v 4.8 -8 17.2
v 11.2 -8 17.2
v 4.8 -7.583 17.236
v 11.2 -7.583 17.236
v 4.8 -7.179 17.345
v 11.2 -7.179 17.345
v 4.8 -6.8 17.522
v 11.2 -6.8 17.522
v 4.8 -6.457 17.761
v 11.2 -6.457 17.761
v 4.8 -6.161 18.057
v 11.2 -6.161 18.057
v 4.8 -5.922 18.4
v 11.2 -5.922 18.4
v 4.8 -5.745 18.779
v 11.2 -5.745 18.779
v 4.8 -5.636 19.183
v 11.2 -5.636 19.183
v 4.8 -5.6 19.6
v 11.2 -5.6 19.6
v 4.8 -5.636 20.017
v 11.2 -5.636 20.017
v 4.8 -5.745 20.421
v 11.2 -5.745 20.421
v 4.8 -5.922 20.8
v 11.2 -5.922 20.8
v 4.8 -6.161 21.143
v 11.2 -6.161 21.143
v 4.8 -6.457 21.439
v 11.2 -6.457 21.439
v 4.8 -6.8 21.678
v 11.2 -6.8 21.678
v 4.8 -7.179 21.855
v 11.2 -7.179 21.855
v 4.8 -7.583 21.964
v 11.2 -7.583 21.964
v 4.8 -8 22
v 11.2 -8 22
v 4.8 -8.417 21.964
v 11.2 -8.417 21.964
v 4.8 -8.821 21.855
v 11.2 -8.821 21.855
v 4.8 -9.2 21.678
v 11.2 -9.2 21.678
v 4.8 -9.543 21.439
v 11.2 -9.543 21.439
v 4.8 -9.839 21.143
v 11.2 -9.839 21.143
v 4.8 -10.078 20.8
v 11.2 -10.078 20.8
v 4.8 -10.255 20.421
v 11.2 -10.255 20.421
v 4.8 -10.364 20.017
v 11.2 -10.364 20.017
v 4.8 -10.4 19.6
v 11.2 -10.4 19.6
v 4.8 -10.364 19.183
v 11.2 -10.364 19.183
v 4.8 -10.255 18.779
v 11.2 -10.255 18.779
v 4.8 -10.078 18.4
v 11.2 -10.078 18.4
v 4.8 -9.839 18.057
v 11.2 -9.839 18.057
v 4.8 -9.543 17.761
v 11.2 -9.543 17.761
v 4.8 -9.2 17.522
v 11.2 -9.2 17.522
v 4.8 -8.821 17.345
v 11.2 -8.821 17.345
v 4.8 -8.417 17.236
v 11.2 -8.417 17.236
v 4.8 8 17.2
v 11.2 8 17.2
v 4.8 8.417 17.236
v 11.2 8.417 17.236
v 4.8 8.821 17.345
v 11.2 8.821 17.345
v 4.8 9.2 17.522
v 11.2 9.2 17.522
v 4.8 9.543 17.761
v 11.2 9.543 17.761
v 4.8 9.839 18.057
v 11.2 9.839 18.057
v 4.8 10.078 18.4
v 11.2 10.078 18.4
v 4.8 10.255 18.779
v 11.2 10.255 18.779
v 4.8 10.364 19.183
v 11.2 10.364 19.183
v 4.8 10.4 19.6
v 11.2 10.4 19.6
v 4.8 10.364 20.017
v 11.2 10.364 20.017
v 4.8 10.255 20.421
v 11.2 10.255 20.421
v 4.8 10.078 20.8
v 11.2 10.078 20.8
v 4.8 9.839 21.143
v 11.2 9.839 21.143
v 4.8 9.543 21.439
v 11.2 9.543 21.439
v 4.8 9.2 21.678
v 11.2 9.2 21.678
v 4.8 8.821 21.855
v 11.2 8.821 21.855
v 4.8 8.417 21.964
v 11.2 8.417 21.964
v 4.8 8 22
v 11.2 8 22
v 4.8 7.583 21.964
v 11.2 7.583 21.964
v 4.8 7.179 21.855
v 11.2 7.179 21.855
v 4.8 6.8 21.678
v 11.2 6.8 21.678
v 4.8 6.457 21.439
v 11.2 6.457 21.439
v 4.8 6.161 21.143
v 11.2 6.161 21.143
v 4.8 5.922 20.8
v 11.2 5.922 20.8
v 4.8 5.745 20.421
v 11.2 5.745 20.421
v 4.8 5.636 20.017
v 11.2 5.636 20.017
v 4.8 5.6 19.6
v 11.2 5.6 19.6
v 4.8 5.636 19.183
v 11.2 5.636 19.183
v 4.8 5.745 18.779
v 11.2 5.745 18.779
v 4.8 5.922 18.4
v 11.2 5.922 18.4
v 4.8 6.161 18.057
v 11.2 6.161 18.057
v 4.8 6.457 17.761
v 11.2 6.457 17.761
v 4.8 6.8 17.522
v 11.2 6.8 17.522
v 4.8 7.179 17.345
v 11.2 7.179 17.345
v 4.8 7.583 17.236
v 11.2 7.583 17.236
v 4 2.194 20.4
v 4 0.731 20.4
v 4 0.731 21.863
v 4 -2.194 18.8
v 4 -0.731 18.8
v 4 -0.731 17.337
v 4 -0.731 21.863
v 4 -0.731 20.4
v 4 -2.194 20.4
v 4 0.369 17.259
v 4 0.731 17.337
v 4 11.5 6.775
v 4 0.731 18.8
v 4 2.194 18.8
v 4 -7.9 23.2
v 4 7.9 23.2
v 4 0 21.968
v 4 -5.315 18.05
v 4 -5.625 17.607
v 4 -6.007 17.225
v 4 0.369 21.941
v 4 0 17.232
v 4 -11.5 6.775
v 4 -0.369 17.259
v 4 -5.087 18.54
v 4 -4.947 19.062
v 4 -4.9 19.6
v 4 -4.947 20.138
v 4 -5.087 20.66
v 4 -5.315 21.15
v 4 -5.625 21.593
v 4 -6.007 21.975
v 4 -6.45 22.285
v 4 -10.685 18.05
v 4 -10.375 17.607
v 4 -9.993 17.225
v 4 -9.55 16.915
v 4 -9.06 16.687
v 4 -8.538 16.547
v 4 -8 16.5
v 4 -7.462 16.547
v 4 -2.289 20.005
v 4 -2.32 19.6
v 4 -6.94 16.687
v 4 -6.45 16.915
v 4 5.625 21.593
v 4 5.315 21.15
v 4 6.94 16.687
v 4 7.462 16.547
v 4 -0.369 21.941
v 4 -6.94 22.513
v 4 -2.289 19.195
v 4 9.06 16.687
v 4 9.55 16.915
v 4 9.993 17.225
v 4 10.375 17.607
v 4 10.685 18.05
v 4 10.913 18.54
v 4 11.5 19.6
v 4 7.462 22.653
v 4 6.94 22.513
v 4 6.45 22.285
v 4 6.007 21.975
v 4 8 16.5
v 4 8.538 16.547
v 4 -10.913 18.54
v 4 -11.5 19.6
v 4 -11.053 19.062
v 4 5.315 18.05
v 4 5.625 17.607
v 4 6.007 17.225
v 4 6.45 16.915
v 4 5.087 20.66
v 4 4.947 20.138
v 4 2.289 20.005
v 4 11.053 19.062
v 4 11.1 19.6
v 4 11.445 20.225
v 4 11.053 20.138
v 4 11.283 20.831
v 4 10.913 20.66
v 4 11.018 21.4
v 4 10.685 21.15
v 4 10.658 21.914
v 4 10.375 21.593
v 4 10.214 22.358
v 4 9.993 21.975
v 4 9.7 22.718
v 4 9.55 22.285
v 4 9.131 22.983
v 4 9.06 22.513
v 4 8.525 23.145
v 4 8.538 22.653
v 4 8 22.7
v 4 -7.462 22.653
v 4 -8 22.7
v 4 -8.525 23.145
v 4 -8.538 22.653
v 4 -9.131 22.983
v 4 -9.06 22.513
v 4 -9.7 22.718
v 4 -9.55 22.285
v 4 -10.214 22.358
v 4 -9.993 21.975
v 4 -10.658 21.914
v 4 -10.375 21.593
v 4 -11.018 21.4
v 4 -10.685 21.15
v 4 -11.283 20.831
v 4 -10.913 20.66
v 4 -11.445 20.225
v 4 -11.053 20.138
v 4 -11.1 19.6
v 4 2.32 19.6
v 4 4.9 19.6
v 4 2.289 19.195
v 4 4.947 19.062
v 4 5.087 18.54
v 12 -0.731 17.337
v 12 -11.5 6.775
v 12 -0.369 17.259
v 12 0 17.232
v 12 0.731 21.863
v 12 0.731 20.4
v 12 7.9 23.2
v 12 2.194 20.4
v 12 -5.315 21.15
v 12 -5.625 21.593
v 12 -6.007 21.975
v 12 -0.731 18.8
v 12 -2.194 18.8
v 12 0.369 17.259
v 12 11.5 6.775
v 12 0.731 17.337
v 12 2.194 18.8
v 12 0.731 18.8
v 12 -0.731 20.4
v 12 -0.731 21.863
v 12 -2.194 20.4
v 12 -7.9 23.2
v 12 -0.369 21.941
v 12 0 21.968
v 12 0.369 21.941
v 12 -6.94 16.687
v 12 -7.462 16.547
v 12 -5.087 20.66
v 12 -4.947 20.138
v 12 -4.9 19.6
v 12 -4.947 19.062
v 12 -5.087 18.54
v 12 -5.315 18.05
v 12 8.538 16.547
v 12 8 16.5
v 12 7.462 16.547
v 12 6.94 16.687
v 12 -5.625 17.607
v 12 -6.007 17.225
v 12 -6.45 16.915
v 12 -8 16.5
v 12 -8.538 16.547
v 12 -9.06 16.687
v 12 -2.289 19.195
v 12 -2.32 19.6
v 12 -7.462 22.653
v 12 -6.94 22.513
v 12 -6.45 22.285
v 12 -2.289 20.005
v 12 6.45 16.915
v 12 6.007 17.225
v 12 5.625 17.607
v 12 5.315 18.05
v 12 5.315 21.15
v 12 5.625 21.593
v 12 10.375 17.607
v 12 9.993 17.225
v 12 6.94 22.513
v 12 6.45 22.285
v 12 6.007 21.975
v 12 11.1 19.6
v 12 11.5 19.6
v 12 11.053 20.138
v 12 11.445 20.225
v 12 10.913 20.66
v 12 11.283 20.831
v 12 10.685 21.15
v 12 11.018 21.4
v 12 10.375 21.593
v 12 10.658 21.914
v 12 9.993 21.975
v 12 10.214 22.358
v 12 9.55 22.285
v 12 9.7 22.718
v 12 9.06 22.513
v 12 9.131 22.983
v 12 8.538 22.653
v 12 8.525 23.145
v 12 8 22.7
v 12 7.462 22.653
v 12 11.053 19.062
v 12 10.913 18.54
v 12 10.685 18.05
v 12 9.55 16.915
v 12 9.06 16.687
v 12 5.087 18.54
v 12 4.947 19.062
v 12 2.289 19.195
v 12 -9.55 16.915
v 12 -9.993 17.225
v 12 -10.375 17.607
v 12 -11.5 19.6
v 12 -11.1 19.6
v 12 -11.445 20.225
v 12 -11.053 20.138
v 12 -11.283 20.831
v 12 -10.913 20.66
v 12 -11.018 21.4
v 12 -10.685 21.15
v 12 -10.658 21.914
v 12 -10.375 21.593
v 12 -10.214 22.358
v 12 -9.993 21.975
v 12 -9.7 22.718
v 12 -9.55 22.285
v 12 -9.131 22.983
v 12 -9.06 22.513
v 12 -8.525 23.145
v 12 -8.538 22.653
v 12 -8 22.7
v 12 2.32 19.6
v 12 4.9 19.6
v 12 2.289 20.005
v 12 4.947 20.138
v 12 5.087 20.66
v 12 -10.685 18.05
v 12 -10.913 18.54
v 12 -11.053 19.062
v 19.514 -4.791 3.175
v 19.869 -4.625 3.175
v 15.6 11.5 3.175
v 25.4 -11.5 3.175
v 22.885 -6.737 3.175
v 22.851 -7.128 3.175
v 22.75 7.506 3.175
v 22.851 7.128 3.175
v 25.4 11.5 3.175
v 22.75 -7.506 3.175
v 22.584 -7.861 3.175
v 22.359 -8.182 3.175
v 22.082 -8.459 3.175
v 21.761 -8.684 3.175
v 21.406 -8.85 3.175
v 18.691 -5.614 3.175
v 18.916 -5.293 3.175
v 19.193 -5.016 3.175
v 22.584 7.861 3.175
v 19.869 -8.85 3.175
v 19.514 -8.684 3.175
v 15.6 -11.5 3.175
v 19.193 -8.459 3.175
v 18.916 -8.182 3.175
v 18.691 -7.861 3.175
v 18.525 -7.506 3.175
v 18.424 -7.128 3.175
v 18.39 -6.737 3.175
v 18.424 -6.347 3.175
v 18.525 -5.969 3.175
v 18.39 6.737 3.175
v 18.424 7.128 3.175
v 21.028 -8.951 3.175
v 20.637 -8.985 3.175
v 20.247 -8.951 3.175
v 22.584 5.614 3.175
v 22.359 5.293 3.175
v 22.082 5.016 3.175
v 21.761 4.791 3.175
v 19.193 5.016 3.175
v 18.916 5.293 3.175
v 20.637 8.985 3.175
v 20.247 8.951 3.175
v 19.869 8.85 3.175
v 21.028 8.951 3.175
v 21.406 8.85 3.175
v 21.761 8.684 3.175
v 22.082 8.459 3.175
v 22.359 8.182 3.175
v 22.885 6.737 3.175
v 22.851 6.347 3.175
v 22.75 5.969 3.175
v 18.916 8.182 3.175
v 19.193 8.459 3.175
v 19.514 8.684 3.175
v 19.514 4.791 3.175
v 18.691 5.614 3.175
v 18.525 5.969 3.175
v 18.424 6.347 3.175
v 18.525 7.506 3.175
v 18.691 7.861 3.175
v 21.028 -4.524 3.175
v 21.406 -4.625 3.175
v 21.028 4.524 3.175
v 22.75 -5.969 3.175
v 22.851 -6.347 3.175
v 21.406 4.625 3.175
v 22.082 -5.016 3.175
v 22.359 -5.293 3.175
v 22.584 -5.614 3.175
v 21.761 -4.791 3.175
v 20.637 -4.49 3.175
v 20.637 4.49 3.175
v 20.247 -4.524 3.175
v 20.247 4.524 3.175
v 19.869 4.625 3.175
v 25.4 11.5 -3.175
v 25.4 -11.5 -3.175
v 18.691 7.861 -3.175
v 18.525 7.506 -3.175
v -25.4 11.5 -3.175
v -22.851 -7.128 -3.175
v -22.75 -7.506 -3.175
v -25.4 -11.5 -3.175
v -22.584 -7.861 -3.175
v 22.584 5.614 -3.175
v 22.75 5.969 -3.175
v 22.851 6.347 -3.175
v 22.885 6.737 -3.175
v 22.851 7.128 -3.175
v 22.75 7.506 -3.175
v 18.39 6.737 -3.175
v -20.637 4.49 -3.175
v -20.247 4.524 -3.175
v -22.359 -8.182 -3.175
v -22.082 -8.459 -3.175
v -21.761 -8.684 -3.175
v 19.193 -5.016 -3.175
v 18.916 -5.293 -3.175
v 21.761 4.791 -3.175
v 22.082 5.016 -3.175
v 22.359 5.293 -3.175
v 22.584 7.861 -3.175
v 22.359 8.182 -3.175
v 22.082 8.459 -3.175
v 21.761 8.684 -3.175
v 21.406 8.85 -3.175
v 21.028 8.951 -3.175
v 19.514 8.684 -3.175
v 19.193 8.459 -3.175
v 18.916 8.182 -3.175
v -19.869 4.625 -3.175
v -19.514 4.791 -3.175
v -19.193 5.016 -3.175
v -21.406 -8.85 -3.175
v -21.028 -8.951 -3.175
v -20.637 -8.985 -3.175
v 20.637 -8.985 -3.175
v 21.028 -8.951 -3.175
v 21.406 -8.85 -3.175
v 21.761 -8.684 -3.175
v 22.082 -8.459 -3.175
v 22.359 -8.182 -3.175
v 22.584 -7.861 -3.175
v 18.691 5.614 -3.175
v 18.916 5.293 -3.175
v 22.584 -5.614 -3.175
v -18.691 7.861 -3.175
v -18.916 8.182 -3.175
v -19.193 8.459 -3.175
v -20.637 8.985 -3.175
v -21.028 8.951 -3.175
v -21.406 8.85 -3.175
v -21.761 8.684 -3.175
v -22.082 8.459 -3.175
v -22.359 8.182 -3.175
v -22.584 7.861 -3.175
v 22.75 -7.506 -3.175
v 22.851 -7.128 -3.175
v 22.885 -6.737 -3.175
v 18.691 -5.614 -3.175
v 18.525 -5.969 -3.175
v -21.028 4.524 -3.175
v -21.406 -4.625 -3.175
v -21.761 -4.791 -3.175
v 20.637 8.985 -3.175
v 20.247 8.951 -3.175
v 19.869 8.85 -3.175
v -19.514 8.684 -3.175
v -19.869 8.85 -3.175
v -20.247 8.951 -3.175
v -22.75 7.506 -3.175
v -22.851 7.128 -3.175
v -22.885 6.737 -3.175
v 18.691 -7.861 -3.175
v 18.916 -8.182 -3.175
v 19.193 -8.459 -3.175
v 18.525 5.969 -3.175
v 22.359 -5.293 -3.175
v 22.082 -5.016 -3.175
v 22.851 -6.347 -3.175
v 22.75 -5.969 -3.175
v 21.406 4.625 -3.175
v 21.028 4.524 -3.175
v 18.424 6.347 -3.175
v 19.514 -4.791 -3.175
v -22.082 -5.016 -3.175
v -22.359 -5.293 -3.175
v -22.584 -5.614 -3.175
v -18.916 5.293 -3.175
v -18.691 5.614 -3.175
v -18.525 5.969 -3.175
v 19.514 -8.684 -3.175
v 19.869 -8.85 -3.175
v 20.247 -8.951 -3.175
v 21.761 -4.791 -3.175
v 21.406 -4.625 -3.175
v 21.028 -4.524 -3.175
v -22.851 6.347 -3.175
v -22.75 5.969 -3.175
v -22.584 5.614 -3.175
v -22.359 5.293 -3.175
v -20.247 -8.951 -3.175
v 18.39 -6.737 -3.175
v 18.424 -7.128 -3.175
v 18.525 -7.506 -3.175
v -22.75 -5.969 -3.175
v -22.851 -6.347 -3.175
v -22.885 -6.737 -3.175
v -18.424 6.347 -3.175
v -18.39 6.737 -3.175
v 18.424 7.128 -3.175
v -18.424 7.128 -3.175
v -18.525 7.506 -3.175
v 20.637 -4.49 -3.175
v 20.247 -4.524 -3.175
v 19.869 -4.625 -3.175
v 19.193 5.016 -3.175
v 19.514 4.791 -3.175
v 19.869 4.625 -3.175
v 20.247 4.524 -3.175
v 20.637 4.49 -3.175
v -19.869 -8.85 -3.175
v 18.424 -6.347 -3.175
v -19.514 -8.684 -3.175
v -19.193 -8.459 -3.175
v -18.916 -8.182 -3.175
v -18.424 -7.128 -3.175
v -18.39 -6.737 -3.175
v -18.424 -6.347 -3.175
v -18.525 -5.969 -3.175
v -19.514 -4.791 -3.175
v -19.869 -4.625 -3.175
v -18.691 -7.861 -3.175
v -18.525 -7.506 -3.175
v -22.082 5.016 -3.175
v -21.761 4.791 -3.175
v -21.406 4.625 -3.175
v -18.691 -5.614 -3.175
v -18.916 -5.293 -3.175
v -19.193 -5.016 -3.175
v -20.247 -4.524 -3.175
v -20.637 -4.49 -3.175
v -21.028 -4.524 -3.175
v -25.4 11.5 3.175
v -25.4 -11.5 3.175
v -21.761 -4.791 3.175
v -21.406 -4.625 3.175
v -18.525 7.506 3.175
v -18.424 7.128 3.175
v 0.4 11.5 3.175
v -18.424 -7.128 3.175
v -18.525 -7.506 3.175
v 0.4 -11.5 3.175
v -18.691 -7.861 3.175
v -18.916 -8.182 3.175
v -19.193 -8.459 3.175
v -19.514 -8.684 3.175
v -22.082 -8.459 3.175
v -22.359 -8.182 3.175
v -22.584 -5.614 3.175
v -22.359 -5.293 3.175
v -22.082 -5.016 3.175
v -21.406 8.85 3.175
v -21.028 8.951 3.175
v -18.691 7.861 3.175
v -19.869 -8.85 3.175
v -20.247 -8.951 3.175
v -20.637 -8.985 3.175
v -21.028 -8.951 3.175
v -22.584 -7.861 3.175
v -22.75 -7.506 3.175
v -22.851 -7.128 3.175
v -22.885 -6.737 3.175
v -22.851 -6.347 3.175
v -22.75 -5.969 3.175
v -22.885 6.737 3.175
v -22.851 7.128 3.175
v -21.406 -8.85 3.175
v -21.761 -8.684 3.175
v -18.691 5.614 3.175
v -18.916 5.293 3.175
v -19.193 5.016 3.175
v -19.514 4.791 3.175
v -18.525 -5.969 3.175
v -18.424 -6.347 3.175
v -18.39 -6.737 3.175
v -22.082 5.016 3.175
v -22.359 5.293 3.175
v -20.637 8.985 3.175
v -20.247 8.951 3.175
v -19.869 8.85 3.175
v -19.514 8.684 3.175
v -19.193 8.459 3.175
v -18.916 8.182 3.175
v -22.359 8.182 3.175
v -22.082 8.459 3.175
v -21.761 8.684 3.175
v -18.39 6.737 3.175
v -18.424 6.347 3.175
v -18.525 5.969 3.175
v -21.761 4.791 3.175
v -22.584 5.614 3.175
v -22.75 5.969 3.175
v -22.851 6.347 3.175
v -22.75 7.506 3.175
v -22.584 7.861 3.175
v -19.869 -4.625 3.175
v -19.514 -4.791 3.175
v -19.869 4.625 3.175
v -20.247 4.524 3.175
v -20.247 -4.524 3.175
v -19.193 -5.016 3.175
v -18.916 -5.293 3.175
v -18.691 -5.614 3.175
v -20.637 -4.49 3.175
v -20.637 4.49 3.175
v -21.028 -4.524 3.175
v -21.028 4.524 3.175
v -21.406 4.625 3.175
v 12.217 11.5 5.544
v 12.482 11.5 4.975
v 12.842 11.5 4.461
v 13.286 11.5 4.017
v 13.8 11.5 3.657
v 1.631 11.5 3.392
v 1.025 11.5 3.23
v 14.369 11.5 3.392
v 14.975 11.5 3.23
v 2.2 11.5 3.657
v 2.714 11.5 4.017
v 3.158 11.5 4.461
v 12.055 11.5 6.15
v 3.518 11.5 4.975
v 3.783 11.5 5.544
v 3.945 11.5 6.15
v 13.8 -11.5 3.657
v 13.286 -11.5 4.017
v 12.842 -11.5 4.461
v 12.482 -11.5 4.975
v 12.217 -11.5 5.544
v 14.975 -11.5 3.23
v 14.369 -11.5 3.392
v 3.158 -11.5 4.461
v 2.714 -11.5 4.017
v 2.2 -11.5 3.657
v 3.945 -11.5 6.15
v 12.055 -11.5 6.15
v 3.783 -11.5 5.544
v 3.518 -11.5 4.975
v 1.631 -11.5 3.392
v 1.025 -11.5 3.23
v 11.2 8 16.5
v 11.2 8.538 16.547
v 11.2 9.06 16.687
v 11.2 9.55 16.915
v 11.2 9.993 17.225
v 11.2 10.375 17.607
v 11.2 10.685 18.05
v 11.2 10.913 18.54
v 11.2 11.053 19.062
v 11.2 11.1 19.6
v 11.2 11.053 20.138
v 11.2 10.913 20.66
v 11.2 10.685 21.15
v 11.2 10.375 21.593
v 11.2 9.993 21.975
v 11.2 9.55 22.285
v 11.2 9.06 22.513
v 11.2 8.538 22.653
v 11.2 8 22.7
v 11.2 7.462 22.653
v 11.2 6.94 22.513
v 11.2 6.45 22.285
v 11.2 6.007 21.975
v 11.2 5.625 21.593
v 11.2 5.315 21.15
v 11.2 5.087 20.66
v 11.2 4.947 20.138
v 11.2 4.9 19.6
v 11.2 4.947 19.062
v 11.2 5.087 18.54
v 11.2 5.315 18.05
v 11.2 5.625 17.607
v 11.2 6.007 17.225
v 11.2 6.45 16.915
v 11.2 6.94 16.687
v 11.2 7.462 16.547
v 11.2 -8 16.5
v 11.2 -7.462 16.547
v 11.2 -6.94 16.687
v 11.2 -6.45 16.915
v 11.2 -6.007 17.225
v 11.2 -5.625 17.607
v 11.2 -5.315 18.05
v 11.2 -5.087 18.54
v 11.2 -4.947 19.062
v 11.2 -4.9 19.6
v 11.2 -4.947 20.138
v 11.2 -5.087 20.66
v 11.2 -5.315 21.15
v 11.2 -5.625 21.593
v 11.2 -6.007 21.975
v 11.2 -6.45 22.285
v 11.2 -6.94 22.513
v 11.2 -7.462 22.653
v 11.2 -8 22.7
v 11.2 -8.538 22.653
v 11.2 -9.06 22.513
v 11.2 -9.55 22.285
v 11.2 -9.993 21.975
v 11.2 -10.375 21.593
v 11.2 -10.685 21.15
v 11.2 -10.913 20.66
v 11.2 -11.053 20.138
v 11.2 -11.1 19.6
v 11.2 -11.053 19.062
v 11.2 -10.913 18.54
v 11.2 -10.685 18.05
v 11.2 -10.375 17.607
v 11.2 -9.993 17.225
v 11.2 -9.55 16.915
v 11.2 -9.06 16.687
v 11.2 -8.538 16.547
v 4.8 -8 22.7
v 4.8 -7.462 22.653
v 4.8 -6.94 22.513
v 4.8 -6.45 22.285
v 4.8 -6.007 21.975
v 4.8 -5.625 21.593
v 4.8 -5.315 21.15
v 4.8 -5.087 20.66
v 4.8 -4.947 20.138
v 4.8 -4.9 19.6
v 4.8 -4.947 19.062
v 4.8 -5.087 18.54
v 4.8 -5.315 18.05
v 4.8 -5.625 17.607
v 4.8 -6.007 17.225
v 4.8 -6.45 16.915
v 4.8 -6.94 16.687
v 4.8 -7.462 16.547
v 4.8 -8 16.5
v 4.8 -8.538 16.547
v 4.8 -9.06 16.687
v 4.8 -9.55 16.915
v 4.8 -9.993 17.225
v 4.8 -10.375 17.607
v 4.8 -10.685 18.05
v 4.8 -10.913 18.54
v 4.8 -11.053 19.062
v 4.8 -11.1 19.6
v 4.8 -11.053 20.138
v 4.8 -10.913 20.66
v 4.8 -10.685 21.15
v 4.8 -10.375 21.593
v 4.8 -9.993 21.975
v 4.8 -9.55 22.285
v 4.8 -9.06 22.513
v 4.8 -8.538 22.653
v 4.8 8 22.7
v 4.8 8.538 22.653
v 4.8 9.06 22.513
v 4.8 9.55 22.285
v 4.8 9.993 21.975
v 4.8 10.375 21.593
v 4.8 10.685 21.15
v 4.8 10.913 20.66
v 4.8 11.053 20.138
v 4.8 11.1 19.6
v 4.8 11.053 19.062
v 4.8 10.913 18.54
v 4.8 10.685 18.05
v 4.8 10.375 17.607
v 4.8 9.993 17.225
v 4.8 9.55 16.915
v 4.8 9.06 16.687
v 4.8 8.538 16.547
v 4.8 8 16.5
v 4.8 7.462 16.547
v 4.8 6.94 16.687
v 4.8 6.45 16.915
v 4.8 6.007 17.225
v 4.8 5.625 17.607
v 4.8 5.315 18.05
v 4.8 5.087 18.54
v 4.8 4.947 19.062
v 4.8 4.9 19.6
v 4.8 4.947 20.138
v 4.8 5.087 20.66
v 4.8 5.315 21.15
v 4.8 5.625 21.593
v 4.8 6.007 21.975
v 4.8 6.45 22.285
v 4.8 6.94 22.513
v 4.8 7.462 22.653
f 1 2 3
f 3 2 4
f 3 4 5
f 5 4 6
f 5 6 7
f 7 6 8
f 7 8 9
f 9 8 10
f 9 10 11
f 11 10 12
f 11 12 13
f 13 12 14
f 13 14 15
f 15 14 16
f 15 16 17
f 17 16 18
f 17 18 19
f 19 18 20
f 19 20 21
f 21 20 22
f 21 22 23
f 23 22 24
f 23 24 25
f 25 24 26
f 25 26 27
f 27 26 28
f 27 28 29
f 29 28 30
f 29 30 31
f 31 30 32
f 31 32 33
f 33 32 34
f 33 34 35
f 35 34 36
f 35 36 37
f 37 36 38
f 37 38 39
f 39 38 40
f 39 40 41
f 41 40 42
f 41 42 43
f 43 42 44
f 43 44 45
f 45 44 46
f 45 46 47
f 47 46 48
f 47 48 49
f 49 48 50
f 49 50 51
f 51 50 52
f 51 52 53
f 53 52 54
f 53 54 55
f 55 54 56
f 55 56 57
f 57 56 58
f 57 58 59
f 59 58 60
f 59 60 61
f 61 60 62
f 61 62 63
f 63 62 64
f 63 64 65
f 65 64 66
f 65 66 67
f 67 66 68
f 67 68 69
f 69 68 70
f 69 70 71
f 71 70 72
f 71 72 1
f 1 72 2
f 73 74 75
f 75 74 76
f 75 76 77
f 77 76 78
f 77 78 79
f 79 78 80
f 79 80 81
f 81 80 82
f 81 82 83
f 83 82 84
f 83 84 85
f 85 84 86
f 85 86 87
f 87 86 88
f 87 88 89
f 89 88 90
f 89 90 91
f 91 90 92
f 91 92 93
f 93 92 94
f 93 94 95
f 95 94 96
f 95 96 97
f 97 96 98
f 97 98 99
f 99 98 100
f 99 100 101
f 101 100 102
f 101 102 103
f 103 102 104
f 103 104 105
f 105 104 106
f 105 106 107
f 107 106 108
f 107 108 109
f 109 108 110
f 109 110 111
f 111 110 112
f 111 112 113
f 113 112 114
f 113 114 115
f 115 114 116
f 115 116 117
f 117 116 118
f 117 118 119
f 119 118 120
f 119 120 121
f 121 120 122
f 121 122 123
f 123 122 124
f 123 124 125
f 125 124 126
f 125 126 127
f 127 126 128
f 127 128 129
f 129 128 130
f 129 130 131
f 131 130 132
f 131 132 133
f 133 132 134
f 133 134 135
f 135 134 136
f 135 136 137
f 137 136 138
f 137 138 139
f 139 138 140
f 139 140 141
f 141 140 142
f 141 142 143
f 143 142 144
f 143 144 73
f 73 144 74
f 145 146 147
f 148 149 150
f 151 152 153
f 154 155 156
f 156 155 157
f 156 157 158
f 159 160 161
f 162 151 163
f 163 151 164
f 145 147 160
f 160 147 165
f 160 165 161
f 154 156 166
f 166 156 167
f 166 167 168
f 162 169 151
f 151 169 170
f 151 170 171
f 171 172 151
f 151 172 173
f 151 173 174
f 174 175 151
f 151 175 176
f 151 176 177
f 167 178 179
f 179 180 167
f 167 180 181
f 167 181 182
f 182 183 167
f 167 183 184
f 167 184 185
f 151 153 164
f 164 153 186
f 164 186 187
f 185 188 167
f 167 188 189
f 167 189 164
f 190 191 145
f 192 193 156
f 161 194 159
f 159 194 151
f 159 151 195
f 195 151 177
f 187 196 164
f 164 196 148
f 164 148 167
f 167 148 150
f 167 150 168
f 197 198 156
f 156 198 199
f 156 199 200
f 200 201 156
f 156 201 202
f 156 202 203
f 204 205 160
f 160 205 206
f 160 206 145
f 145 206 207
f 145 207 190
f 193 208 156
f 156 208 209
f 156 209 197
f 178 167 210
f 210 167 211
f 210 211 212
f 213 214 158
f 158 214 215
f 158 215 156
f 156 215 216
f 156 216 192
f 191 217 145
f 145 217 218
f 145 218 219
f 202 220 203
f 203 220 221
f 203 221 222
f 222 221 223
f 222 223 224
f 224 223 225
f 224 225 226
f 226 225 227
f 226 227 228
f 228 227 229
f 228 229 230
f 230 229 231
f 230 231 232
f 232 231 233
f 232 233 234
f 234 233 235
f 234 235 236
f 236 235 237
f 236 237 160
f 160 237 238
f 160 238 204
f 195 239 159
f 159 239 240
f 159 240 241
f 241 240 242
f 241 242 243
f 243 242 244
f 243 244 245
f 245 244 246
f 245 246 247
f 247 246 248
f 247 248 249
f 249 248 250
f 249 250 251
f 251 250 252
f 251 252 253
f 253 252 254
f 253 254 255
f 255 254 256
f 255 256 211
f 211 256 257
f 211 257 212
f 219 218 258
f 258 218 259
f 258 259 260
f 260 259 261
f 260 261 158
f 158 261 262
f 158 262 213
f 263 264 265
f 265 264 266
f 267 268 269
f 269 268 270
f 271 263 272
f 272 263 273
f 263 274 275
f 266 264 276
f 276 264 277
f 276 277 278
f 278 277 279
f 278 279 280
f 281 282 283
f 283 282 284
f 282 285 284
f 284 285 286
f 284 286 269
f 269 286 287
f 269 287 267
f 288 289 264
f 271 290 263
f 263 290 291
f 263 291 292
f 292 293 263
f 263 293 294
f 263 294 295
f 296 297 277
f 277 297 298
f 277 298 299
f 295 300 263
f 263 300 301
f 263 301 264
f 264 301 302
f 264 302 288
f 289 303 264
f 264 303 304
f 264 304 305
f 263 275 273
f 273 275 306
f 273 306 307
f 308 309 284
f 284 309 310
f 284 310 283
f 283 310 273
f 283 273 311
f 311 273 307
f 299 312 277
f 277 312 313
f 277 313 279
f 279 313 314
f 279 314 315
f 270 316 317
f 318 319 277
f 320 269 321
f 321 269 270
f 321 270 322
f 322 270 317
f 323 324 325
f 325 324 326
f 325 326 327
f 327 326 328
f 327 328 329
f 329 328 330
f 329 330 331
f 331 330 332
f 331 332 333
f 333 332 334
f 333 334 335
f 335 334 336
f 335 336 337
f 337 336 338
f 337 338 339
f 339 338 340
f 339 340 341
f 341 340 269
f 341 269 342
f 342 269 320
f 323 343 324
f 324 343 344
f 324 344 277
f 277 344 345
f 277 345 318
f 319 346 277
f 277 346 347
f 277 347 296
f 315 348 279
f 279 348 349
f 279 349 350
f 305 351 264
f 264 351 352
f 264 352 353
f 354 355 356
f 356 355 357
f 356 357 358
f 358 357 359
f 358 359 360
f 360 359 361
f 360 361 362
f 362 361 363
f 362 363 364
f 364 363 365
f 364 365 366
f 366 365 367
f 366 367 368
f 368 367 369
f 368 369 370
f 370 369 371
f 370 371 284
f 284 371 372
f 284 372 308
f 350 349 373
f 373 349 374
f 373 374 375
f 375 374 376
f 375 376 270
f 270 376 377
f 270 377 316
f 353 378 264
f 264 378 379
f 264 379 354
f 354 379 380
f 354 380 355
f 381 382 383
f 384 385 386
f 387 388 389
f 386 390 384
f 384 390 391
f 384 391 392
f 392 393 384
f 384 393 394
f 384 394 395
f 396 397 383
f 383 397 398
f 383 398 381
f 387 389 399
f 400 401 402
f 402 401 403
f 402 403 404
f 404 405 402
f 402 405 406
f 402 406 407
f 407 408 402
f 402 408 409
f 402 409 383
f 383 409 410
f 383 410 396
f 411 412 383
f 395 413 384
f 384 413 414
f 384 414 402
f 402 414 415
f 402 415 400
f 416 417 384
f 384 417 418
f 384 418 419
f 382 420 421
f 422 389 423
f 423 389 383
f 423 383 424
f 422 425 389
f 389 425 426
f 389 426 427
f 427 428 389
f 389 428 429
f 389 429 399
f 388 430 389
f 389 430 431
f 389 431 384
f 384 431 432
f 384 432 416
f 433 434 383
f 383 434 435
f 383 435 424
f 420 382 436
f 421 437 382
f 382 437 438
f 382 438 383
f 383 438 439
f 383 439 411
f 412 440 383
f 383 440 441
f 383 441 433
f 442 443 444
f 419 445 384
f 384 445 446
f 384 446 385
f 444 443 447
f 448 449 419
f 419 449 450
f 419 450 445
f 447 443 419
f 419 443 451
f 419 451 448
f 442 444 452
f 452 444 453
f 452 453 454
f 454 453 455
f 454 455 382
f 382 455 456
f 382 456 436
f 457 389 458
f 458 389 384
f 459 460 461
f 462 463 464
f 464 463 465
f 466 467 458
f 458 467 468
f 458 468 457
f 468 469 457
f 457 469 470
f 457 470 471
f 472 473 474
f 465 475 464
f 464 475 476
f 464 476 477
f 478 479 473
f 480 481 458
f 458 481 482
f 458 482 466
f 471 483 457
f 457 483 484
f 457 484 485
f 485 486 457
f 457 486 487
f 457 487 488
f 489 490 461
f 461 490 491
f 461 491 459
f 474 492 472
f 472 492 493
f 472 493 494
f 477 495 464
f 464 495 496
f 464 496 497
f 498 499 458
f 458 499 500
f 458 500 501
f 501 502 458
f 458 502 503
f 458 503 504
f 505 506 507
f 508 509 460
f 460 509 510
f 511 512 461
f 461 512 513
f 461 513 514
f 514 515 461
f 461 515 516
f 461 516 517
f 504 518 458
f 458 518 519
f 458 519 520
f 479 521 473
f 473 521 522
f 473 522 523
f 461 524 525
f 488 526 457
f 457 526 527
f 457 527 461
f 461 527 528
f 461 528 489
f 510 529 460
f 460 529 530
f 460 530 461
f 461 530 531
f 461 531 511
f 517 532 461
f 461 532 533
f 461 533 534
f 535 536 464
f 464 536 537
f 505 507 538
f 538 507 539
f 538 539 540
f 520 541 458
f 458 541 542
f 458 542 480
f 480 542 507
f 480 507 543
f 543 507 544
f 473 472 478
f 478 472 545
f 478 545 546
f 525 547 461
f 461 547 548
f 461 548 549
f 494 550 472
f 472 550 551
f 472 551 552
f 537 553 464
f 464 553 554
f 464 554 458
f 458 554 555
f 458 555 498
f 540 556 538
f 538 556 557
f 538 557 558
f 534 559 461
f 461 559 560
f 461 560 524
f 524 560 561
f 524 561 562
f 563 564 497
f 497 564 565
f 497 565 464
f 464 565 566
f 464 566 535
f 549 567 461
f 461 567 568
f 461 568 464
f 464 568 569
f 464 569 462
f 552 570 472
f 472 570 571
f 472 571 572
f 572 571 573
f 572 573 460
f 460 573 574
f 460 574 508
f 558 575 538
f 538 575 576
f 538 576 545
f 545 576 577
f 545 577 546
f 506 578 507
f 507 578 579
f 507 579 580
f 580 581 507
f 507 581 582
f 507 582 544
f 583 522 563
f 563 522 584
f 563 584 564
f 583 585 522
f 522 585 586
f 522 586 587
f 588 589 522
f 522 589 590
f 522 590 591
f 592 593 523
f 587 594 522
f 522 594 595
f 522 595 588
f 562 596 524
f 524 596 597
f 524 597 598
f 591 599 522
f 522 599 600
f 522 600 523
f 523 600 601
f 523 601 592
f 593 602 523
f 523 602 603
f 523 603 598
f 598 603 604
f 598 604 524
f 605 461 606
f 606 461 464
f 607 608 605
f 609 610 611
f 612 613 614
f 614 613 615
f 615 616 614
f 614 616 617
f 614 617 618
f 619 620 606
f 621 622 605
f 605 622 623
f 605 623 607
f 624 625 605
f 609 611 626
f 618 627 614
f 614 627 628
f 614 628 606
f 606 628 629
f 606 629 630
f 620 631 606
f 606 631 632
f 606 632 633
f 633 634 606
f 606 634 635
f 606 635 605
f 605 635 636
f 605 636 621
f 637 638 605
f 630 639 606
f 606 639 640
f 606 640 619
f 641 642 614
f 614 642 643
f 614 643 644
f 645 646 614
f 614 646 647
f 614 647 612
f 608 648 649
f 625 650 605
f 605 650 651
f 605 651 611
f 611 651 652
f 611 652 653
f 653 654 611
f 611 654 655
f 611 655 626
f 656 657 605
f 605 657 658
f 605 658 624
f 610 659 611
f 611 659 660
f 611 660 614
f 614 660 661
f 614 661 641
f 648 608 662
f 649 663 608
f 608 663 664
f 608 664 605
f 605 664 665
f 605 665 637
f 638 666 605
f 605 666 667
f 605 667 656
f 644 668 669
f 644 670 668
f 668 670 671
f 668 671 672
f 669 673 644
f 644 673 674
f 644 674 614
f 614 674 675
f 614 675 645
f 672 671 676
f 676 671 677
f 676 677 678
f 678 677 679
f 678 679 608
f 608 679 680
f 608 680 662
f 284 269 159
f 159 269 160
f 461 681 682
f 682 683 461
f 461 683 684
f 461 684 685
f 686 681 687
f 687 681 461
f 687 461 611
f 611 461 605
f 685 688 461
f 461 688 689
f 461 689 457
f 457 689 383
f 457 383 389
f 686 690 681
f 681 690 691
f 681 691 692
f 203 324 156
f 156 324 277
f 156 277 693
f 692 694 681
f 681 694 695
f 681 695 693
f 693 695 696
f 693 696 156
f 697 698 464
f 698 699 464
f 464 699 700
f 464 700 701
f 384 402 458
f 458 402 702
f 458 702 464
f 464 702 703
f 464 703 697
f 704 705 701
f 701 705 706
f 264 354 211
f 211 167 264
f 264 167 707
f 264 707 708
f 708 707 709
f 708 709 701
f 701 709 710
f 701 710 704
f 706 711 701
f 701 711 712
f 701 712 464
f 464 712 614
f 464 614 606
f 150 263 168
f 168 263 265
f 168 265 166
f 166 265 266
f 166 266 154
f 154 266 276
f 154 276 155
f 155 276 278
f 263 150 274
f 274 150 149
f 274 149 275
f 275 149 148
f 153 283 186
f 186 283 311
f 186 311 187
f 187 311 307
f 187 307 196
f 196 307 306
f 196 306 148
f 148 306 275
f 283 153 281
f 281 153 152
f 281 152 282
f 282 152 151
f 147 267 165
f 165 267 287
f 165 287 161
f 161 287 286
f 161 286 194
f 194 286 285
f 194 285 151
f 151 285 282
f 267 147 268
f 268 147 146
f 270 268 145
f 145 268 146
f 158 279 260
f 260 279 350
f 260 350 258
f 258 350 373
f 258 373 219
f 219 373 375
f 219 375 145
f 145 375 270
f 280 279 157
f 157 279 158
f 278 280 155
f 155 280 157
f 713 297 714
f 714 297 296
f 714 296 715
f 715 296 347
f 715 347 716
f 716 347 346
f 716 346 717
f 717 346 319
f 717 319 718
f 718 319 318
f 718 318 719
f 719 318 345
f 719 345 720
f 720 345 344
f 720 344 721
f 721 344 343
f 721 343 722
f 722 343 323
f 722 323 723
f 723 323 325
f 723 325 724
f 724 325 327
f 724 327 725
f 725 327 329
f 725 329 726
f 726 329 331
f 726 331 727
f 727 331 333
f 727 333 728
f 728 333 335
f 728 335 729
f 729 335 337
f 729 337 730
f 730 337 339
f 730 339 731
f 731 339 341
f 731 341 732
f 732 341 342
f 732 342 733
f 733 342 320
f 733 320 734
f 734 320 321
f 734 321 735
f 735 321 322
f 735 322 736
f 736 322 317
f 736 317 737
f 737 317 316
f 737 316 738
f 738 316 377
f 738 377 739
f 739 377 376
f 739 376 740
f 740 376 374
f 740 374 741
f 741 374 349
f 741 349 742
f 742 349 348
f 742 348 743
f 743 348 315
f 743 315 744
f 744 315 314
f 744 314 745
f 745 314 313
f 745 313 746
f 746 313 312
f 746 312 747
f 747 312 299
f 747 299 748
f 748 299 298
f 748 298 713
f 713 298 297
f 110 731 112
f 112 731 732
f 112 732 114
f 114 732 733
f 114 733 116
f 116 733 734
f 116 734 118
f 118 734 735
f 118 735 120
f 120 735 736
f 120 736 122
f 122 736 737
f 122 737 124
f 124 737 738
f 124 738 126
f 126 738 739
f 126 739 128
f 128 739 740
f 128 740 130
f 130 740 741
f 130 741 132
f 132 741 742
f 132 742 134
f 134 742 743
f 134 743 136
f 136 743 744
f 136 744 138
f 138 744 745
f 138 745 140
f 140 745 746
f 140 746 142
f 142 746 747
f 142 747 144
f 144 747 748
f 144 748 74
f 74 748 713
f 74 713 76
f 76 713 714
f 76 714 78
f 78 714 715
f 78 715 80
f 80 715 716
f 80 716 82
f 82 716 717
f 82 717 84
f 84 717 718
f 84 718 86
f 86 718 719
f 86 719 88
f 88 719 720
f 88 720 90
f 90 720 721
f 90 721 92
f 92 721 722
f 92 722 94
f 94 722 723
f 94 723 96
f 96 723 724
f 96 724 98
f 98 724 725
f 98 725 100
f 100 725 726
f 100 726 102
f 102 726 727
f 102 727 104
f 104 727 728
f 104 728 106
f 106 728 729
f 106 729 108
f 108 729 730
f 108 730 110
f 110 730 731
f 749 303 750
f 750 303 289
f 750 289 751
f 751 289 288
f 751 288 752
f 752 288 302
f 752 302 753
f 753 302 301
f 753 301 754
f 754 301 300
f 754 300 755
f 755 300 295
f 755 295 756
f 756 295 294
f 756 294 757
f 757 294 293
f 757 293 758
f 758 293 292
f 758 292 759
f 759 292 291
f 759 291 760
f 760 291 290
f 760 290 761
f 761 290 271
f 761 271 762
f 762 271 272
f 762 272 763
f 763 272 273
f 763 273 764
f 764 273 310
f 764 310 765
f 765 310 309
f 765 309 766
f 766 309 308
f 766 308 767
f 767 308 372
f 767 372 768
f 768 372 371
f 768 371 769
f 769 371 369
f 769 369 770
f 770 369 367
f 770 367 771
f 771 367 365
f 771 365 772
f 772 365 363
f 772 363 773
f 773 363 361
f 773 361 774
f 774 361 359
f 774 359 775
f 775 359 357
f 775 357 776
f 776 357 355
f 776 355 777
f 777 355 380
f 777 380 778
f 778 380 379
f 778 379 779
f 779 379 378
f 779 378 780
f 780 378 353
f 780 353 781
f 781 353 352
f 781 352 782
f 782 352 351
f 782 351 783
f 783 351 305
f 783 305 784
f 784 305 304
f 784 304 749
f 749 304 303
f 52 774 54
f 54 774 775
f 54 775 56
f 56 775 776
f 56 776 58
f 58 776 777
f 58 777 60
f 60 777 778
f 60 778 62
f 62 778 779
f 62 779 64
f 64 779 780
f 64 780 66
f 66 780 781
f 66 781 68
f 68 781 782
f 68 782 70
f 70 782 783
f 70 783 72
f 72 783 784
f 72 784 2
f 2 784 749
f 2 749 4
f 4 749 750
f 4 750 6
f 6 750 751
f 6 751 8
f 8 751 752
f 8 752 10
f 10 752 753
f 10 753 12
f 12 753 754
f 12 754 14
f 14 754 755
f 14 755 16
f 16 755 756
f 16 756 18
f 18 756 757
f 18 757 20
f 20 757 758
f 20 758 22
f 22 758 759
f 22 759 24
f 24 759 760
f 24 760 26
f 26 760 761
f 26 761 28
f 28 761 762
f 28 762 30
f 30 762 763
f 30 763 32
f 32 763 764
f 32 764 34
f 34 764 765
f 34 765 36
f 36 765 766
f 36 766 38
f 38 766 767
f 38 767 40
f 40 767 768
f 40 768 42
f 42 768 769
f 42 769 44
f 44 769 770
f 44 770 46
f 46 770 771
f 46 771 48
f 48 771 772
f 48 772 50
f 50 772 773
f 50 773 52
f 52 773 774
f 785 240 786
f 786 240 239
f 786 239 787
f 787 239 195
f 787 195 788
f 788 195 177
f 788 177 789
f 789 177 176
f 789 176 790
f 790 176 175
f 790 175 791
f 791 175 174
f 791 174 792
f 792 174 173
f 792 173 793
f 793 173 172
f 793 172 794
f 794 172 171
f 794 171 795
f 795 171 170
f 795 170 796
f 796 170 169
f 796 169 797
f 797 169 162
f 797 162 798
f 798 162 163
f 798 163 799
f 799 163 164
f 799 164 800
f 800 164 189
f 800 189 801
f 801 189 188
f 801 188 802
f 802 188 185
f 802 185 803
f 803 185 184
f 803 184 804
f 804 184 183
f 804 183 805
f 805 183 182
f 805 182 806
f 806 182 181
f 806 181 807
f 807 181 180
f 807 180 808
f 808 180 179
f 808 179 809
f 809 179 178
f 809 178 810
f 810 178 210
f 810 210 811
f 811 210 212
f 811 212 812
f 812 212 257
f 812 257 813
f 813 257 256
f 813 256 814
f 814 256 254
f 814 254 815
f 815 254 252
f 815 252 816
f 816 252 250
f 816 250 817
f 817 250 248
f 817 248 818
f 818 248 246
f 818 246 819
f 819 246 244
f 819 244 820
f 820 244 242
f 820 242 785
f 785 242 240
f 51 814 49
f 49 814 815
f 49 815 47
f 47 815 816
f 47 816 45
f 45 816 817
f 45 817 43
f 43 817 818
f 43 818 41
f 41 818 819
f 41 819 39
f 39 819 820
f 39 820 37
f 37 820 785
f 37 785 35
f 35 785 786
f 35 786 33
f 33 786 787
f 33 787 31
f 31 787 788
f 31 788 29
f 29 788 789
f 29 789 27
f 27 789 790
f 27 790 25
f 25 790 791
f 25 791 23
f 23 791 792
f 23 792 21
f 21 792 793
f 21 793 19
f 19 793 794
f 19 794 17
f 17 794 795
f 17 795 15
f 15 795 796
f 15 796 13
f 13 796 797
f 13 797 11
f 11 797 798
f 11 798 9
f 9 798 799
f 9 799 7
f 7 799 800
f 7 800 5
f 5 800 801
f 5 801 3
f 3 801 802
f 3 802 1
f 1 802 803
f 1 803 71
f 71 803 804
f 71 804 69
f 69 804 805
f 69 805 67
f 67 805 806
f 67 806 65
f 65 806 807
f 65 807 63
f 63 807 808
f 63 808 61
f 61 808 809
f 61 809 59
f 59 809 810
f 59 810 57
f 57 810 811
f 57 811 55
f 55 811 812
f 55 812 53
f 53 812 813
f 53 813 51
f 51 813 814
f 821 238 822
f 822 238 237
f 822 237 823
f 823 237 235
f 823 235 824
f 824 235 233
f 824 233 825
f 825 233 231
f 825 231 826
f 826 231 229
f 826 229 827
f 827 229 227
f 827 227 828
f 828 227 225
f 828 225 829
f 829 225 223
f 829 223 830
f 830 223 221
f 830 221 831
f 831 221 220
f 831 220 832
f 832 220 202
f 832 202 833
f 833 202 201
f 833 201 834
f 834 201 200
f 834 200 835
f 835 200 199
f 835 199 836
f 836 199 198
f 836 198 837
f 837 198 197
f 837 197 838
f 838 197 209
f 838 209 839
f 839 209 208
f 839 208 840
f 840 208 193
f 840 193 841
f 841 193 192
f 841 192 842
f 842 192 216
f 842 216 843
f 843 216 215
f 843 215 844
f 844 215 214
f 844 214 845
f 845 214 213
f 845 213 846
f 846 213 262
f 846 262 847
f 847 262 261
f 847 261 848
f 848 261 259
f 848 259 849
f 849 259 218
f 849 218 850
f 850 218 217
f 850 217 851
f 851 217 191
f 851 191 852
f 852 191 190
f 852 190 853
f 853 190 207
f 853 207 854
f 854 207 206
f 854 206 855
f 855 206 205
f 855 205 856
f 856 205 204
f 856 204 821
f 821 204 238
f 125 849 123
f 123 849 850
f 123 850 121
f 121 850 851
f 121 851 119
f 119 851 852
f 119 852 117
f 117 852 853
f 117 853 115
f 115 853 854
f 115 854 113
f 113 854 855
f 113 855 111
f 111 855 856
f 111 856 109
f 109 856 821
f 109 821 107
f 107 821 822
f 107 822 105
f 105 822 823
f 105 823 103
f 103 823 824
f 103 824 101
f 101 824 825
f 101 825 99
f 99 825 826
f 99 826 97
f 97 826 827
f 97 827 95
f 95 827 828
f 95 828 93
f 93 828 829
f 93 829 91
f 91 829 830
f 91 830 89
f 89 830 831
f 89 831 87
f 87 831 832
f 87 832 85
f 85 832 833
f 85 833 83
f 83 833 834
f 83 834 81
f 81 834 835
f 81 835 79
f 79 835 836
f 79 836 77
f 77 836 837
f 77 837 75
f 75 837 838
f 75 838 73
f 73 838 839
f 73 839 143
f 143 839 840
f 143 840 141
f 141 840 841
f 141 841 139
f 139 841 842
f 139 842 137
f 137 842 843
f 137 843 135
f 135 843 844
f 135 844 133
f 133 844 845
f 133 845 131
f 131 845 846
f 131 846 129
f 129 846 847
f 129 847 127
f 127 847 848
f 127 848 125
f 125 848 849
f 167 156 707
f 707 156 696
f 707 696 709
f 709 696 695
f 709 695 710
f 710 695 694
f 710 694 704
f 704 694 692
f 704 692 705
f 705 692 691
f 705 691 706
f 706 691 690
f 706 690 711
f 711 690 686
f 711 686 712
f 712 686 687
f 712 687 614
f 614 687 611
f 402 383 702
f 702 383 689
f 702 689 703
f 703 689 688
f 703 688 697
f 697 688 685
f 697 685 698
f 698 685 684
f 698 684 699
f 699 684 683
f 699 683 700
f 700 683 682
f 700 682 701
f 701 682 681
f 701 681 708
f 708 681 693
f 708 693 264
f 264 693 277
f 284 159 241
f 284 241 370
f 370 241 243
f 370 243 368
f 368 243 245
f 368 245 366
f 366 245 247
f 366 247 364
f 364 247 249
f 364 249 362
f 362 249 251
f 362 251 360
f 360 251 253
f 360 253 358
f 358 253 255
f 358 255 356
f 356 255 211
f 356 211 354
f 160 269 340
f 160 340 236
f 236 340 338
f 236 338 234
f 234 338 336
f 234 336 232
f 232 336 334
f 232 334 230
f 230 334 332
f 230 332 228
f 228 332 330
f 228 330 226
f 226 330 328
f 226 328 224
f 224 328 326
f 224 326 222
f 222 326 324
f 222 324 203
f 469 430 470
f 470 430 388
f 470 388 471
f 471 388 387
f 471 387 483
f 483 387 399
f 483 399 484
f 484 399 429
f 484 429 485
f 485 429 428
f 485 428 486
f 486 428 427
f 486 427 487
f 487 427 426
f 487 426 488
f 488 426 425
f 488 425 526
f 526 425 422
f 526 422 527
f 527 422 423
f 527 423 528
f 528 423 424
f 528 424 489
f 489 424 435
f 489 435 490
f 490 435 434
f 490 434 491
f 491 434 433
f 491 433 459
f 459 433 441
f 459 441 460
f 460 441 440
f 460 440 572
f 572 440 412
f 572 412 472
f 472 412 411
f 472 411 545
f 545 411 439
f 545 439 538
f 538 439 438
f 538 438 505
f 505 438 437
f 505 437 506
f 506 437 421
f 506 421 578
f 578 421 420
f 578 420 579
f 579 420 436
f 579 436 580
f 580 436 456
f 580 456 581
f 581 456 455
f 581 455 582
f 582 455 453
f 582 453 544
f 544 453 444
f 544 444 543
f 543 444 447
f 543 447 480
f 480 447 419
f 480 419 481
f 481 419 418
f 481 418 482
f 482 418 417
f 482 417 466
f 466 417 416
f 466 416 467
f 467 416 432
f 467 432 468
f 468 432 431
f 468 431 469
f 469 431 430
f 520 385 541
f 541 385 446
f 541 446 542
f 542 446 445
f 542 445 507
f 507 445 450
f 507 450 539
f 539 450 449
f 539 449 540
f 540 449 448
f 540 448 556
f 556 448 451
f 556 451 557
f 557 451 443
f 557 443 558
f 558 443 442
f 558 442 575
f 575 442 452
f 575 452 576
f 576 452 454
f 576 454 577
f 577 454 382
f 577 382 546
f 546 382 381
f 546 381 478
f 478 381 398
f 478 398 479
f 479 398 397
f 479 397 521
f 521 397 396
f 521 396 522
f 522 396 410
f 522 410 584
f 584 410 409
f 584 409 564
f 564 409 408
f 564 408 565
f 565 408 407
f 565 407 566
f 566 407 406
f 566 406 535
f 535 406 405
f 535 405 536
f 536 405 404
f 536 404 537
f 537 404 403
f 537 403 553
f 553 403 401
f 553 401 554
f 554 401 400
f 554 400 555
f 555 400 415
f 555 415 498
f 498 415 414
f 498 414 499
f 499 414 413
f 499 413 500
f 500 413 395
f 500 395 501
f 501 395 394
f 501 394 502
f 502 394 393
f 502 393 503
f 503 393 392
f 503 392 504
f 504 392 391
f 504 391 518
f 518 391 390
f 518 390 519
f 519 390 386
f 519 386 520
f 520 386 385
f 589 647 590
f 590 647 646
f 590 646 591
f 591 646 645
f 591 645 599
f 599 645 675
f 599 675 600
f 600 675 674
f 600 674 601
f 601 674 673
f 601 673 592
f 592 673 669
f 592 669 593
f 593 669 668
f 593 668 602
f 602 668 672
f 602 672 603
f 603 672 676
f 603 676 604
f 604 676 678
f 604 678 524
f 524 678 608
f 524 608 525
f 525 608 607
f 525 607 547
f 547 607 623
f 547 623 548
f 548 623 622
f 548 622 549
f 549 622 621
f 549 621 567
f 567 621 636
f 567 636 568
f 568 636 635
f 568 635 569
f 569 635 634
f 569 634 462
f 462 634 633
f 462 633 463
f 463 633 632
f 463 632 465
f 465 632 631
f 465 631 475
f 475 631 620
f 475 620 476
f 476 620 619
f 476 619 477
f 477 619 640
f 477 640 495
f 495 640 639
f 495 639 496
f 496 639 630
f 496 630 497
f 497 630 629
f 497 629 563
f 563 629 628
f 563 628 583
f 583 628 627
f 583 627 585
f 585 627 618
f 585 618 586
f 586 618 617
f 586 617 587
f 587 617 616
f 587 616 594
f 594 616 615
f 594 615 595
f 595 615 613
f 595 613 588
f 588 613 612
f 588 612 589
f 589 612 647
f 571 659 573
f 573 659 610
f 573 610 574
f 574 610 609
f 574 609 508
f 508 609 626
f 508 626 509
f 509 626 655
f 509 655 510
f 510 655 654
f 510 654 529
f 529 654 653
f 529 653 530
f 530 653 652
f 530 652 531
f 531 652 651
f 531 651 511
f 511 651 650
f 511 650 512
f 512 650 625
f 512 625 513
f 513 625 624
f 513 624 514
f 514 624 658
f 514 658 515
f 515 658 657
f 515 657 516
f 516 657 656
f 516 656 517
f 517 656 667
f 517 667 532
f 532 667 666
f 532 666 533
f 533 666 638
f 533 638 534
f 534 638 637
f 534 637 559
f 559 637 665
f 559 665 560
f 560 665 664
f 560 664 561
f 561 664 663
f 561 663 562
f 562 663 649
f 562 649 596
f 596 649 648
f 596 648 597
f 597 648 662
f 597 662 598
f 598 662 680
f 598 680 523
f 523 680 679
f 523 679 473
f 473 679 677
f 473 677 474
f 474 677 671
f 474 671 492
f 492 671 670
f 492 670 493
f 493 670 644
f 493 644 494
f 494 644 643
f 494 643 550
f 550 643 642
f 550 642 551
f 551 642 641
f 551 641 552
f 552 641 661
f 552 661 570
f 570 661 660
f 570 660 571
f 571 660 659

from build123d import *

# Parameters (mm, degrees)
BOSS_EXTRUDE1_DEPTH   = 11.5
SKETCH3_R             = 2.4
CUT_EXTRUDE1_DEPTH    = 46.489009619
SKETCH3_3_R           = 3.1
SKETCH3_3_R_2         = 2.4
CUT_EXTRUDE2_DEPTH    = 0.8
FILLET1_R             = 3.6
F_8_CLEARANCE_HOLE1_D = 4.4958


with BuildPart() as part:
    # Sketch2 → Boss-Extrude1 (new, symmetric)
    with BuildSketch(Plane(origin=(0, 0, 0), x_dir=(1, 0, 0), z_dir=(0, 1, 0))):
        Polygon((4, -3.175), (4, -19.599999916), (4, -23.199999916), (12, -23.199999916), (12, -19.599999916), (12, -3.175), (25.4, -3.175), (25.4, 3.175), (-25.4, 3.175), (-25.4, -3.175), align=None)
    extrude(amount=BOSS_EXTRUDE1_DEPTH, both=True)

    # Sketch3 → Cut-Extrude1 (cut, through all)
    with BuildSketch(Plane(origin=(12, 0, 0), x_dir=(0, 0, -1), z_dir=(1, 0, 0))):
        with BuildLine():
            Line((-20.399999916, 2.19411255), (-20.399999916, 0.73137085))
            Line((-20.399999916, 0.73137085), (-21.862741616, 0.73137085))
            ThreePointArc((-21.862741616, 0.73137085), (-21.967727251, 0), (-21.862741616, -0.73137085))
            Line((-21.862741616, -0.73137085), (-20.399999916, -0.73137085))
            Line((-20.399999916, -0.73137085), (-20.399999916, -2.19411255))
            ThreePointArc((-20.399999916, -2.19411255), (-19.599999916, -2.320249175), (-18.799999916, -2.19411255))
            Line((-18.799999916, -2.19411255), (-18.799999916, -0.73137085))
            Line((-18.799999916, -0.73137085), (-17.337258216, -0.73137085))
            ThreePointArc((-17.337258216, -0.73137085), (-17.232272581, 0), (-17.337258216, 0.73137085))
            Line((-17.337258216, 0.73137085), (-18.799999916, 0.73137085))
            Line((-18.799999916, 0.73137085), (-18.799999916, 2.19411255))
            ThreePointArc((-18.799999916, 2.19411255), (-19.599999916, 2.320249175), (-20.399999916, 2.19411255))
        make_face()
        with Locations((-19.599999916, 8)):
            Circle(SKETCH3_R)
        with Locations((-19.599999916, -8)):
            Circle(SKETCH3_R)
    extrude(amount=-CUT_EXTRUDE1_DEPTH, mode=Mode.SUBTRACT)

    # Sketch3<3> → Cut-Extrude2 (cut)
    # profile 1 of 2: a face of its own
    with BuildSketch(Plane(origin=(12, 0, 0), x_dir=(0, 0, -1), z_dir=(1, 0, 0))):
        with Locations((-19.599999916, 8)):
            Circle(SKETCH3_3_R)
        with Locations((-19.599999916, 8)):
            Circle(SKETCH3_3_R_2, mode=Mode.SUBTRACT)
    # profile 2 of 2: a face of its own
    with BuildSketch(Plane(origin=(12, 0, 0), x_dir=(0, 0, -1), z_dir=(1, 0, 0))):
        with Locations((-19.599999916, -8)):
            Circle(SKETCH3_3_R)
        with Locations((-19.599999916, -8)):
            Circle(SKETCH3_3_R_2, mode=Mode.SUBTRACT)
    cut_extrude2 = extrude(amount=-CUT_EXTRUDE2_DEPTH, mode=Mode.SUBTRACT)

    # Mirror1: Cut-Extrude2 across plane
    add(cut_extrude2.mirror(Plane(origin=(8, 0, 0), x_dir=(0, 0, 1), z_dir=(1, 0, 0))), mode=Mode.SUBTRACT)

    # Fillet1
    fillet1_edges = [part.edges().sort_by_distance(p)[0] for p in [
        (8, -11.5, 23.199999916),
        (8, 11.5, 23.199999916),
        (4, 0, 3.175),
        (12, 0, 3.175),
    ]]
    fillet(fillet1_edges, radius=FILLET1_R)

    # #8 Clearance Hole1 (through all)
    with Locations(Plane.XY.offset(3.175)):
        with Locations((-20.6375, 6.7375), (-20.6375, -6.7375), (20.6375, -6.7375), (20.6375, 6.7375)):
            Hole(F_8_CLEARANCE_HOLE1_D / 2)


solid = part.part
